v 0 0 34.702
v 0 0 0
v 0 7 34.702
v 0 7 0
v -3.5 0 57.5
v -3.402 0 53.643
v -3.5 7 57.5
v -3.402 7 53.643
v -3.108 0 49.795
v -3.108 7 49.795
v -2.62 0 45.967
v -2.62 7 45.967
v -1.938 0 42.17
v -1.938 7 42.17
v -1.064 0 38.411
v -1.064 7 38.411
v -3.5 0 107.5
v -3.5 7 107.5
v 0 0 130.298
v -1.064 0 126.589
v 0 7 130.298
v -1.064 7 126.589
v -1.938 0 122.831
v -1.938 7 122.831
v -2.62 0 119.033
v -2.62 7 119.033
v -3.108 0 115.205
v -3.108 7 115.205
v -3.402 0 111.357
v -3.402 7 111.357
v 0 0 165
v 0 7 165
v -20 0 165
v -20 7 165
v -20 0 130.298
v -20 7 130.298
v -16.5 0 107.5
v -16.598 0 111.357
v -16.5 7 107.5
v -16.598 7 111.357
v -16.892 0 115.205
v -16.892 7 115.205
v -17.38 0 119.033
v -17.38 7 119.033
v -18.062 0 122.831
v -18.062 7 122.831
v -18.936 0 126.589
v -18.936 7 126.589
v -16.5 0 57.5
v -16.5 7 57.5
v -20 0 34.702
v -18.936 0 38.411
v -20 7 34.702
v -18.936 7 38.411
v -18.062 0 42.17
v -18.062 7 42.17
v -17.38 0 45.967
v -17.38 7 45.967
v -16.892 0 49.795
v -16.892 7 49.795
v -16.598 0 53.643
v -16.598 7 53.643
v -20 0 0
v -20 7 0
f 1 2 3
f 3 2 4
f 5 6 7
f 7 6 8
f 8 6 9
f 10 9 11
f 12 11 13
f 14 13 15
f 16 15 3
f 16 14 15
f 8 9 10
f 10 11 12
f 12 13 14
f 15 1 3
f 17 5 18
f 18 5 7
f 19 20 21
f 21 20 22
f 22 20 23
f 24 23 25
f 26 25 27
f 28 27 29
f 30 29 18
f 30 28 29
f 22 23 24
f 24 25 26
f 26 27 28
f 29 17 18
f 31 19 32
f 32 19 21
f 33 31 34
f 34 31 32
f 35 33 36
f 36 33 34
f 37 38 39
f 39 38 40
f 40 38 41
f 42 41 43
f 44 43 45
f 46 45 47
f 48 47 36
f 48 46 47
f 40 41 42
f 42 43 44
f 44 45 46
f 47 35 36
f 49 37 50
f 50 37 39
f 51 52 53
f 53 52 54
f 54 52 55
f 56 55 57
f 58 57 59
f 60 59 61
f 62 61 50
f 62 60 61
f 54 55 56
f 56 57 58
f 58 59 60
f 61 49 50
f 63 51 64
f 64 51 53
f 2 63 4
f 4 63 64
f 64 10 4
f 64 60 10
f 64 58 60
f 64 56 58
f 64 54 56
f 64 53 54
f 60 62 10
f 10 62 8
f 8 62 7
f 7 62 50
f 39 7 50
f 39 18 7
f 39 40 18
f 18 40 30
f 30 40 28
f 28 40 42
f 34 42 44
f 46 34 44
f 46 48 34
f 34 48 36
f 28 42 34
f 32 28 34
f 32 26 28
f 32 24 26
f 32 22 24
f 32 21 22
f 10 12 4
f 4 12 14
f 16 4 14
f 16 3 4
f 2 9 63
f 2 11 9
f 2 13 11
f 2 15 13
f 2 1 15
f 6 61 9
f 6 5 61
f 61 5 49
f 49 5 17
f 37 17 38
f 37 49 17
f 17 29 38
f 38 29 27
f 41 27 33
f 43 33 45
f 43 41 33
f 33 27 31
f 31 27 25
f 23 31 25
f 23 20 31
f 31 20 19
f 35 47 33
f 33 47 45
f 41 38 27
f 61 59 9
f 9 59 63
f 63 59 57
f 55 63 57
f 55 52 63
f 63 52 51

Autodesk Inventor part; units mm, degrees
ref_plane "YZ Plane" through (0, 0, 0) normal (1, 0, 0) x (0, 1, 0)
ref_plane "XZ Plane" through (0, 0, 0) normal (0, 1, 0) x (-1, 0, 0)
ref_plane "XY Plane" through (0, 0, 0) normal (0, 0, 1) x (1, 0, 0)
sketch "Sketch1" plane through (0, 0, 0) normal (0, 1, 0) x (-1, 0, 0)
  line L0 (0, 0) -> (20, 0)
  line L1 (3.5, 57.5) -> (3.5, 82.5)
  line L2 (16.5, 57.5) -> (16.5, 82.5)
  arc A0 (16.5, 57.5) -> (20, 34.702) centre (92.5, 57.5) ccw
  arc A1 (0, 34.702) -> (3.5, 57.5) centre (-72.5, 57.5) ccw
  line L3 (3.5, 82.5) -> (16.5, 82.5) construction
  line L4 (0, 34.702) -> (0, 0)
  line L5 (20, 34.702) -> (20, 0)
  line L6 (0, 165) -> (20, 165)
  line L7 (3.5, 107.5) -> (3.5, 82.5)
  line L8 (16.5, 107.5) -> (16.5, 82.5)
  arc A2 (20, 130.298) -> (16.5, 107.5) centre (92.5, 107.5) ccw
  arc A3 (3.5, 107.5) -> (0, 130.298) centre (-72.5, 107.5) ccw
  line L9 (0, 130.298) -> (0, 165)
  line L10 (20, 130.298) -> (20, 165)
  dimension "d2" = 20
  dimension "d5" = 76
  dimension "d6" = 76
  dimension "d7" = 82.5
  dimension "d8" = 13
  dimension "d9" = 25
extrude "Extrusion1" add sketch "Sketch1" along normal blind 7
properties part number "ASTM D638-10-1"
